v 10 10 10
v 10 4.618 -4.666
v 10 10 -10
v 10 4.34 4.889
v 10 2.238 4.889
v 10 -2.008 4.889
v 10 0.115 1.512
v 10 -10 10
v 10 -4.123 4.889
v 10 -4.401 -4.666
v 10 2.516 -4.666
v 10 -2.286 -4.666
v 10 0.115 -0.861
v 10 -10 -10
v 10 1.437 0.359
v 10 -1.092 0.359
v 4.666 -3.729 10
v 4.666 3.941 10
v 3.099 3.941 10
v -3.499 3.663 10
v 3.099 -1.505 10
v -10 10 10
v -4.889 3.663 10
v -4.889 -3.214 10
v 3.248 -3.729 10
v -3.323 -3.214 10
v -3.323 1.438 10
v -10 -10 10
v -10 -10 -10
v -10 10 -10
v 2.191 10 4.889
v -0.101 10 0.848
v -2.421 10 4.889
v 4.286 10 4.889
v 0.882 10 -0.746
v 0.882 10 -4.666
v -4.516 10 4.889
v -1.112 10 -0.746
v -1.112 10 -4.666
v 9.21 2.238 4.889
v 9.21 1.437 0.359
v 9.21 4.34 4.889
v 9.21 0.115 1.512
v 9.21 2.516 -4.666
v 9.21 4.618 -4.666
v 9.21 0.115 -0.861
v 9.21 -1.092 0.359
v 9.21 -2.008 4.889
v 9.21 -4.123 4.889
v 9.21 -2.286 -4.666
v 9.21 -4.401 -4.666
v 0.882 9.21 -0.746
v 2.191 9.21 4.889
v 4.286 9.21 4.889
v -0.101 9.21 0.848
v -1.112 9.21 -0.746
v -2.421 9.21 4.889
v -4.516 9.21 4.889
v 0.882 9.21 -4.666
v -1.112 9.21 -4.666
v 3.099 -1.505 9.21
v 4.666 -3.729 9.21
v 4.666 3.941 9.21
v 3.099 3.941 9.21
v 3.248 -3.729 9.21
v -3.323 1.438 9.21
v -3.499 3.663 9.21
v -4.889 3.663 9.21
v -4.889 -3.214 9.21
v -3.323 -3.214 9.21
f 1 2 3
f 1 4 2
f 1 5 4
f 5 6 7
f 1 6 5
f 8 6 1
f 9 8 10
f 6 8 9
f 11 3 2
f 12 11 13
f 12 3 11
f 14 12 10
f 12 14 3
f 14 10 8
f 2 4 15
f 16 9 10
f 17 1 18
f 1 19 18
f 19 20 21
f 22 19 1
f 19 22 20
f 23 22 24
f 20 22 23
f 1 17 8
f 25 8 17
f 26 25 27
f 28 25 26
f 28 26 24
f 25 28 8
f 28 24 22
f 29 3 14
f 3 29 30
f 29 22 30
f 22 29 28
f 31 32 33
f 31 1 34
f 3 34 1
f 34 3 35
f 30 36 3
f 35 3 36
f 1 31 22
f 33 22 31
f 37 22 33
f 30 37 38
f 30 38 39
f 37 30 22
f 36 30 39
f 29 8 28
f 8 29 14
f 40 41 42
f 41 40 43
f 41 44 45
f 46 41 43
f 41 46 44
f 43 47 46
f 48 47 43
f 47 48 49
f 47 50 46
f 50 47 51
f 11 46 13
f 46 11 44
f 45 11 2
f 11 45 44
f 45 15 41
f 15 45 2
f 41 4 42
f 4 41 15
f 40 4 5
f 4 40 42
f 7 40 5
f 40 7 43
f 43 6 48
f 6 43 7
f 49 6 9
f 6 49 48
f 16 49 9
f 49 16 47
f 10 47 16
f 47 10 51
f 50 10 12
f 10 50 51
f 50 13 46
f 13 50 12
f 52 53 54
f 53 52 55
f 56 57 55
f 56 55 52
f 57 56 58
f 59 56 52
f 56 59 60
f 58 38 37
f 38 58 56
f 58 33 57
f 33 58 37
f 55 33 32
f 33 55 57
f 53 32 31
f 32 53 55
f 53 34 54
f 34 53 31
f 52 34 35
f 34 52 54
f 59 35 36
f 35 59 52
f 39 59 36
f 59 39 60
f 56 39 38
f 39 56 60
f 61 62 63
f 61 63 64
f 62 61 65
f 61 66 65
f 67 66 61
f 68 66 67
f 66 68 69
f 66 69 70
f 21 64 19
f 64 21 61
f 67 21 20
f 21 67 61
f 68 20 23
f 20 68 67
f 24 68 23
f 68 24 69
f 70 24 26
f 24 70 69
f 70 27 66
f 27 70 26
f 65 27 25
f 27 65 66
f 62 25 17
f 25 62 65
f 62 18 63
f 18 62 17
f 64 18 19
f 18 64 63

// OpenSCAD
// XYZ Calibration Cube — first test object for the Bambu Lab A1
// Standard 20 mm cube with X / Y / Z embossed on three adjacent faces.
// Printing this verifies dimensional accuracy on each axis and that
// fine text/emboss detail resolves correctly.
//
// Parametric: change `size`, `depth`, or `font_size` and re-export.

size       = 20;    // cube edge length (mm) — the dimension to measure after printing
depth      = 0.8;   // how deep the letters are carved into the faces (mm)
font_size  = 10;    // letter height (mm)
font_face  = "Liberation Sans:style=Bold";

$fn = 64;           // curve smoothness

difference() {
    cube(size, center = true);

    // --- X on the +X face (right) ---
    translate([size/2 - depth + 0.01, 0, 0])
        rotate([90, 0, 90])
            linear_extrude(height = depth + 0.02)
                text("X", size = font_size, halign = "center",
                     valign = "center", font = font_face);

    // --- Y on the +Y face (back) ---
    translate([0, size/2 - depth + 0.01, 0])
        rotate([90, 0, 180])
            linear_extrude(height = depth + 0.02)
                text("Y", size = font_size, halign = "center",
                     valign = "center", font = font_face);

    // --- Z on the +Z face (top) ---
    translate([0, 0, size/2 - depth + 0.01])
        rotate([0, 0, 90])
            linear_extrude(height = depth + 0.02)
                text("Z", size = font_size, halign = "center",
                     valign = "center", font = font_face);
}
